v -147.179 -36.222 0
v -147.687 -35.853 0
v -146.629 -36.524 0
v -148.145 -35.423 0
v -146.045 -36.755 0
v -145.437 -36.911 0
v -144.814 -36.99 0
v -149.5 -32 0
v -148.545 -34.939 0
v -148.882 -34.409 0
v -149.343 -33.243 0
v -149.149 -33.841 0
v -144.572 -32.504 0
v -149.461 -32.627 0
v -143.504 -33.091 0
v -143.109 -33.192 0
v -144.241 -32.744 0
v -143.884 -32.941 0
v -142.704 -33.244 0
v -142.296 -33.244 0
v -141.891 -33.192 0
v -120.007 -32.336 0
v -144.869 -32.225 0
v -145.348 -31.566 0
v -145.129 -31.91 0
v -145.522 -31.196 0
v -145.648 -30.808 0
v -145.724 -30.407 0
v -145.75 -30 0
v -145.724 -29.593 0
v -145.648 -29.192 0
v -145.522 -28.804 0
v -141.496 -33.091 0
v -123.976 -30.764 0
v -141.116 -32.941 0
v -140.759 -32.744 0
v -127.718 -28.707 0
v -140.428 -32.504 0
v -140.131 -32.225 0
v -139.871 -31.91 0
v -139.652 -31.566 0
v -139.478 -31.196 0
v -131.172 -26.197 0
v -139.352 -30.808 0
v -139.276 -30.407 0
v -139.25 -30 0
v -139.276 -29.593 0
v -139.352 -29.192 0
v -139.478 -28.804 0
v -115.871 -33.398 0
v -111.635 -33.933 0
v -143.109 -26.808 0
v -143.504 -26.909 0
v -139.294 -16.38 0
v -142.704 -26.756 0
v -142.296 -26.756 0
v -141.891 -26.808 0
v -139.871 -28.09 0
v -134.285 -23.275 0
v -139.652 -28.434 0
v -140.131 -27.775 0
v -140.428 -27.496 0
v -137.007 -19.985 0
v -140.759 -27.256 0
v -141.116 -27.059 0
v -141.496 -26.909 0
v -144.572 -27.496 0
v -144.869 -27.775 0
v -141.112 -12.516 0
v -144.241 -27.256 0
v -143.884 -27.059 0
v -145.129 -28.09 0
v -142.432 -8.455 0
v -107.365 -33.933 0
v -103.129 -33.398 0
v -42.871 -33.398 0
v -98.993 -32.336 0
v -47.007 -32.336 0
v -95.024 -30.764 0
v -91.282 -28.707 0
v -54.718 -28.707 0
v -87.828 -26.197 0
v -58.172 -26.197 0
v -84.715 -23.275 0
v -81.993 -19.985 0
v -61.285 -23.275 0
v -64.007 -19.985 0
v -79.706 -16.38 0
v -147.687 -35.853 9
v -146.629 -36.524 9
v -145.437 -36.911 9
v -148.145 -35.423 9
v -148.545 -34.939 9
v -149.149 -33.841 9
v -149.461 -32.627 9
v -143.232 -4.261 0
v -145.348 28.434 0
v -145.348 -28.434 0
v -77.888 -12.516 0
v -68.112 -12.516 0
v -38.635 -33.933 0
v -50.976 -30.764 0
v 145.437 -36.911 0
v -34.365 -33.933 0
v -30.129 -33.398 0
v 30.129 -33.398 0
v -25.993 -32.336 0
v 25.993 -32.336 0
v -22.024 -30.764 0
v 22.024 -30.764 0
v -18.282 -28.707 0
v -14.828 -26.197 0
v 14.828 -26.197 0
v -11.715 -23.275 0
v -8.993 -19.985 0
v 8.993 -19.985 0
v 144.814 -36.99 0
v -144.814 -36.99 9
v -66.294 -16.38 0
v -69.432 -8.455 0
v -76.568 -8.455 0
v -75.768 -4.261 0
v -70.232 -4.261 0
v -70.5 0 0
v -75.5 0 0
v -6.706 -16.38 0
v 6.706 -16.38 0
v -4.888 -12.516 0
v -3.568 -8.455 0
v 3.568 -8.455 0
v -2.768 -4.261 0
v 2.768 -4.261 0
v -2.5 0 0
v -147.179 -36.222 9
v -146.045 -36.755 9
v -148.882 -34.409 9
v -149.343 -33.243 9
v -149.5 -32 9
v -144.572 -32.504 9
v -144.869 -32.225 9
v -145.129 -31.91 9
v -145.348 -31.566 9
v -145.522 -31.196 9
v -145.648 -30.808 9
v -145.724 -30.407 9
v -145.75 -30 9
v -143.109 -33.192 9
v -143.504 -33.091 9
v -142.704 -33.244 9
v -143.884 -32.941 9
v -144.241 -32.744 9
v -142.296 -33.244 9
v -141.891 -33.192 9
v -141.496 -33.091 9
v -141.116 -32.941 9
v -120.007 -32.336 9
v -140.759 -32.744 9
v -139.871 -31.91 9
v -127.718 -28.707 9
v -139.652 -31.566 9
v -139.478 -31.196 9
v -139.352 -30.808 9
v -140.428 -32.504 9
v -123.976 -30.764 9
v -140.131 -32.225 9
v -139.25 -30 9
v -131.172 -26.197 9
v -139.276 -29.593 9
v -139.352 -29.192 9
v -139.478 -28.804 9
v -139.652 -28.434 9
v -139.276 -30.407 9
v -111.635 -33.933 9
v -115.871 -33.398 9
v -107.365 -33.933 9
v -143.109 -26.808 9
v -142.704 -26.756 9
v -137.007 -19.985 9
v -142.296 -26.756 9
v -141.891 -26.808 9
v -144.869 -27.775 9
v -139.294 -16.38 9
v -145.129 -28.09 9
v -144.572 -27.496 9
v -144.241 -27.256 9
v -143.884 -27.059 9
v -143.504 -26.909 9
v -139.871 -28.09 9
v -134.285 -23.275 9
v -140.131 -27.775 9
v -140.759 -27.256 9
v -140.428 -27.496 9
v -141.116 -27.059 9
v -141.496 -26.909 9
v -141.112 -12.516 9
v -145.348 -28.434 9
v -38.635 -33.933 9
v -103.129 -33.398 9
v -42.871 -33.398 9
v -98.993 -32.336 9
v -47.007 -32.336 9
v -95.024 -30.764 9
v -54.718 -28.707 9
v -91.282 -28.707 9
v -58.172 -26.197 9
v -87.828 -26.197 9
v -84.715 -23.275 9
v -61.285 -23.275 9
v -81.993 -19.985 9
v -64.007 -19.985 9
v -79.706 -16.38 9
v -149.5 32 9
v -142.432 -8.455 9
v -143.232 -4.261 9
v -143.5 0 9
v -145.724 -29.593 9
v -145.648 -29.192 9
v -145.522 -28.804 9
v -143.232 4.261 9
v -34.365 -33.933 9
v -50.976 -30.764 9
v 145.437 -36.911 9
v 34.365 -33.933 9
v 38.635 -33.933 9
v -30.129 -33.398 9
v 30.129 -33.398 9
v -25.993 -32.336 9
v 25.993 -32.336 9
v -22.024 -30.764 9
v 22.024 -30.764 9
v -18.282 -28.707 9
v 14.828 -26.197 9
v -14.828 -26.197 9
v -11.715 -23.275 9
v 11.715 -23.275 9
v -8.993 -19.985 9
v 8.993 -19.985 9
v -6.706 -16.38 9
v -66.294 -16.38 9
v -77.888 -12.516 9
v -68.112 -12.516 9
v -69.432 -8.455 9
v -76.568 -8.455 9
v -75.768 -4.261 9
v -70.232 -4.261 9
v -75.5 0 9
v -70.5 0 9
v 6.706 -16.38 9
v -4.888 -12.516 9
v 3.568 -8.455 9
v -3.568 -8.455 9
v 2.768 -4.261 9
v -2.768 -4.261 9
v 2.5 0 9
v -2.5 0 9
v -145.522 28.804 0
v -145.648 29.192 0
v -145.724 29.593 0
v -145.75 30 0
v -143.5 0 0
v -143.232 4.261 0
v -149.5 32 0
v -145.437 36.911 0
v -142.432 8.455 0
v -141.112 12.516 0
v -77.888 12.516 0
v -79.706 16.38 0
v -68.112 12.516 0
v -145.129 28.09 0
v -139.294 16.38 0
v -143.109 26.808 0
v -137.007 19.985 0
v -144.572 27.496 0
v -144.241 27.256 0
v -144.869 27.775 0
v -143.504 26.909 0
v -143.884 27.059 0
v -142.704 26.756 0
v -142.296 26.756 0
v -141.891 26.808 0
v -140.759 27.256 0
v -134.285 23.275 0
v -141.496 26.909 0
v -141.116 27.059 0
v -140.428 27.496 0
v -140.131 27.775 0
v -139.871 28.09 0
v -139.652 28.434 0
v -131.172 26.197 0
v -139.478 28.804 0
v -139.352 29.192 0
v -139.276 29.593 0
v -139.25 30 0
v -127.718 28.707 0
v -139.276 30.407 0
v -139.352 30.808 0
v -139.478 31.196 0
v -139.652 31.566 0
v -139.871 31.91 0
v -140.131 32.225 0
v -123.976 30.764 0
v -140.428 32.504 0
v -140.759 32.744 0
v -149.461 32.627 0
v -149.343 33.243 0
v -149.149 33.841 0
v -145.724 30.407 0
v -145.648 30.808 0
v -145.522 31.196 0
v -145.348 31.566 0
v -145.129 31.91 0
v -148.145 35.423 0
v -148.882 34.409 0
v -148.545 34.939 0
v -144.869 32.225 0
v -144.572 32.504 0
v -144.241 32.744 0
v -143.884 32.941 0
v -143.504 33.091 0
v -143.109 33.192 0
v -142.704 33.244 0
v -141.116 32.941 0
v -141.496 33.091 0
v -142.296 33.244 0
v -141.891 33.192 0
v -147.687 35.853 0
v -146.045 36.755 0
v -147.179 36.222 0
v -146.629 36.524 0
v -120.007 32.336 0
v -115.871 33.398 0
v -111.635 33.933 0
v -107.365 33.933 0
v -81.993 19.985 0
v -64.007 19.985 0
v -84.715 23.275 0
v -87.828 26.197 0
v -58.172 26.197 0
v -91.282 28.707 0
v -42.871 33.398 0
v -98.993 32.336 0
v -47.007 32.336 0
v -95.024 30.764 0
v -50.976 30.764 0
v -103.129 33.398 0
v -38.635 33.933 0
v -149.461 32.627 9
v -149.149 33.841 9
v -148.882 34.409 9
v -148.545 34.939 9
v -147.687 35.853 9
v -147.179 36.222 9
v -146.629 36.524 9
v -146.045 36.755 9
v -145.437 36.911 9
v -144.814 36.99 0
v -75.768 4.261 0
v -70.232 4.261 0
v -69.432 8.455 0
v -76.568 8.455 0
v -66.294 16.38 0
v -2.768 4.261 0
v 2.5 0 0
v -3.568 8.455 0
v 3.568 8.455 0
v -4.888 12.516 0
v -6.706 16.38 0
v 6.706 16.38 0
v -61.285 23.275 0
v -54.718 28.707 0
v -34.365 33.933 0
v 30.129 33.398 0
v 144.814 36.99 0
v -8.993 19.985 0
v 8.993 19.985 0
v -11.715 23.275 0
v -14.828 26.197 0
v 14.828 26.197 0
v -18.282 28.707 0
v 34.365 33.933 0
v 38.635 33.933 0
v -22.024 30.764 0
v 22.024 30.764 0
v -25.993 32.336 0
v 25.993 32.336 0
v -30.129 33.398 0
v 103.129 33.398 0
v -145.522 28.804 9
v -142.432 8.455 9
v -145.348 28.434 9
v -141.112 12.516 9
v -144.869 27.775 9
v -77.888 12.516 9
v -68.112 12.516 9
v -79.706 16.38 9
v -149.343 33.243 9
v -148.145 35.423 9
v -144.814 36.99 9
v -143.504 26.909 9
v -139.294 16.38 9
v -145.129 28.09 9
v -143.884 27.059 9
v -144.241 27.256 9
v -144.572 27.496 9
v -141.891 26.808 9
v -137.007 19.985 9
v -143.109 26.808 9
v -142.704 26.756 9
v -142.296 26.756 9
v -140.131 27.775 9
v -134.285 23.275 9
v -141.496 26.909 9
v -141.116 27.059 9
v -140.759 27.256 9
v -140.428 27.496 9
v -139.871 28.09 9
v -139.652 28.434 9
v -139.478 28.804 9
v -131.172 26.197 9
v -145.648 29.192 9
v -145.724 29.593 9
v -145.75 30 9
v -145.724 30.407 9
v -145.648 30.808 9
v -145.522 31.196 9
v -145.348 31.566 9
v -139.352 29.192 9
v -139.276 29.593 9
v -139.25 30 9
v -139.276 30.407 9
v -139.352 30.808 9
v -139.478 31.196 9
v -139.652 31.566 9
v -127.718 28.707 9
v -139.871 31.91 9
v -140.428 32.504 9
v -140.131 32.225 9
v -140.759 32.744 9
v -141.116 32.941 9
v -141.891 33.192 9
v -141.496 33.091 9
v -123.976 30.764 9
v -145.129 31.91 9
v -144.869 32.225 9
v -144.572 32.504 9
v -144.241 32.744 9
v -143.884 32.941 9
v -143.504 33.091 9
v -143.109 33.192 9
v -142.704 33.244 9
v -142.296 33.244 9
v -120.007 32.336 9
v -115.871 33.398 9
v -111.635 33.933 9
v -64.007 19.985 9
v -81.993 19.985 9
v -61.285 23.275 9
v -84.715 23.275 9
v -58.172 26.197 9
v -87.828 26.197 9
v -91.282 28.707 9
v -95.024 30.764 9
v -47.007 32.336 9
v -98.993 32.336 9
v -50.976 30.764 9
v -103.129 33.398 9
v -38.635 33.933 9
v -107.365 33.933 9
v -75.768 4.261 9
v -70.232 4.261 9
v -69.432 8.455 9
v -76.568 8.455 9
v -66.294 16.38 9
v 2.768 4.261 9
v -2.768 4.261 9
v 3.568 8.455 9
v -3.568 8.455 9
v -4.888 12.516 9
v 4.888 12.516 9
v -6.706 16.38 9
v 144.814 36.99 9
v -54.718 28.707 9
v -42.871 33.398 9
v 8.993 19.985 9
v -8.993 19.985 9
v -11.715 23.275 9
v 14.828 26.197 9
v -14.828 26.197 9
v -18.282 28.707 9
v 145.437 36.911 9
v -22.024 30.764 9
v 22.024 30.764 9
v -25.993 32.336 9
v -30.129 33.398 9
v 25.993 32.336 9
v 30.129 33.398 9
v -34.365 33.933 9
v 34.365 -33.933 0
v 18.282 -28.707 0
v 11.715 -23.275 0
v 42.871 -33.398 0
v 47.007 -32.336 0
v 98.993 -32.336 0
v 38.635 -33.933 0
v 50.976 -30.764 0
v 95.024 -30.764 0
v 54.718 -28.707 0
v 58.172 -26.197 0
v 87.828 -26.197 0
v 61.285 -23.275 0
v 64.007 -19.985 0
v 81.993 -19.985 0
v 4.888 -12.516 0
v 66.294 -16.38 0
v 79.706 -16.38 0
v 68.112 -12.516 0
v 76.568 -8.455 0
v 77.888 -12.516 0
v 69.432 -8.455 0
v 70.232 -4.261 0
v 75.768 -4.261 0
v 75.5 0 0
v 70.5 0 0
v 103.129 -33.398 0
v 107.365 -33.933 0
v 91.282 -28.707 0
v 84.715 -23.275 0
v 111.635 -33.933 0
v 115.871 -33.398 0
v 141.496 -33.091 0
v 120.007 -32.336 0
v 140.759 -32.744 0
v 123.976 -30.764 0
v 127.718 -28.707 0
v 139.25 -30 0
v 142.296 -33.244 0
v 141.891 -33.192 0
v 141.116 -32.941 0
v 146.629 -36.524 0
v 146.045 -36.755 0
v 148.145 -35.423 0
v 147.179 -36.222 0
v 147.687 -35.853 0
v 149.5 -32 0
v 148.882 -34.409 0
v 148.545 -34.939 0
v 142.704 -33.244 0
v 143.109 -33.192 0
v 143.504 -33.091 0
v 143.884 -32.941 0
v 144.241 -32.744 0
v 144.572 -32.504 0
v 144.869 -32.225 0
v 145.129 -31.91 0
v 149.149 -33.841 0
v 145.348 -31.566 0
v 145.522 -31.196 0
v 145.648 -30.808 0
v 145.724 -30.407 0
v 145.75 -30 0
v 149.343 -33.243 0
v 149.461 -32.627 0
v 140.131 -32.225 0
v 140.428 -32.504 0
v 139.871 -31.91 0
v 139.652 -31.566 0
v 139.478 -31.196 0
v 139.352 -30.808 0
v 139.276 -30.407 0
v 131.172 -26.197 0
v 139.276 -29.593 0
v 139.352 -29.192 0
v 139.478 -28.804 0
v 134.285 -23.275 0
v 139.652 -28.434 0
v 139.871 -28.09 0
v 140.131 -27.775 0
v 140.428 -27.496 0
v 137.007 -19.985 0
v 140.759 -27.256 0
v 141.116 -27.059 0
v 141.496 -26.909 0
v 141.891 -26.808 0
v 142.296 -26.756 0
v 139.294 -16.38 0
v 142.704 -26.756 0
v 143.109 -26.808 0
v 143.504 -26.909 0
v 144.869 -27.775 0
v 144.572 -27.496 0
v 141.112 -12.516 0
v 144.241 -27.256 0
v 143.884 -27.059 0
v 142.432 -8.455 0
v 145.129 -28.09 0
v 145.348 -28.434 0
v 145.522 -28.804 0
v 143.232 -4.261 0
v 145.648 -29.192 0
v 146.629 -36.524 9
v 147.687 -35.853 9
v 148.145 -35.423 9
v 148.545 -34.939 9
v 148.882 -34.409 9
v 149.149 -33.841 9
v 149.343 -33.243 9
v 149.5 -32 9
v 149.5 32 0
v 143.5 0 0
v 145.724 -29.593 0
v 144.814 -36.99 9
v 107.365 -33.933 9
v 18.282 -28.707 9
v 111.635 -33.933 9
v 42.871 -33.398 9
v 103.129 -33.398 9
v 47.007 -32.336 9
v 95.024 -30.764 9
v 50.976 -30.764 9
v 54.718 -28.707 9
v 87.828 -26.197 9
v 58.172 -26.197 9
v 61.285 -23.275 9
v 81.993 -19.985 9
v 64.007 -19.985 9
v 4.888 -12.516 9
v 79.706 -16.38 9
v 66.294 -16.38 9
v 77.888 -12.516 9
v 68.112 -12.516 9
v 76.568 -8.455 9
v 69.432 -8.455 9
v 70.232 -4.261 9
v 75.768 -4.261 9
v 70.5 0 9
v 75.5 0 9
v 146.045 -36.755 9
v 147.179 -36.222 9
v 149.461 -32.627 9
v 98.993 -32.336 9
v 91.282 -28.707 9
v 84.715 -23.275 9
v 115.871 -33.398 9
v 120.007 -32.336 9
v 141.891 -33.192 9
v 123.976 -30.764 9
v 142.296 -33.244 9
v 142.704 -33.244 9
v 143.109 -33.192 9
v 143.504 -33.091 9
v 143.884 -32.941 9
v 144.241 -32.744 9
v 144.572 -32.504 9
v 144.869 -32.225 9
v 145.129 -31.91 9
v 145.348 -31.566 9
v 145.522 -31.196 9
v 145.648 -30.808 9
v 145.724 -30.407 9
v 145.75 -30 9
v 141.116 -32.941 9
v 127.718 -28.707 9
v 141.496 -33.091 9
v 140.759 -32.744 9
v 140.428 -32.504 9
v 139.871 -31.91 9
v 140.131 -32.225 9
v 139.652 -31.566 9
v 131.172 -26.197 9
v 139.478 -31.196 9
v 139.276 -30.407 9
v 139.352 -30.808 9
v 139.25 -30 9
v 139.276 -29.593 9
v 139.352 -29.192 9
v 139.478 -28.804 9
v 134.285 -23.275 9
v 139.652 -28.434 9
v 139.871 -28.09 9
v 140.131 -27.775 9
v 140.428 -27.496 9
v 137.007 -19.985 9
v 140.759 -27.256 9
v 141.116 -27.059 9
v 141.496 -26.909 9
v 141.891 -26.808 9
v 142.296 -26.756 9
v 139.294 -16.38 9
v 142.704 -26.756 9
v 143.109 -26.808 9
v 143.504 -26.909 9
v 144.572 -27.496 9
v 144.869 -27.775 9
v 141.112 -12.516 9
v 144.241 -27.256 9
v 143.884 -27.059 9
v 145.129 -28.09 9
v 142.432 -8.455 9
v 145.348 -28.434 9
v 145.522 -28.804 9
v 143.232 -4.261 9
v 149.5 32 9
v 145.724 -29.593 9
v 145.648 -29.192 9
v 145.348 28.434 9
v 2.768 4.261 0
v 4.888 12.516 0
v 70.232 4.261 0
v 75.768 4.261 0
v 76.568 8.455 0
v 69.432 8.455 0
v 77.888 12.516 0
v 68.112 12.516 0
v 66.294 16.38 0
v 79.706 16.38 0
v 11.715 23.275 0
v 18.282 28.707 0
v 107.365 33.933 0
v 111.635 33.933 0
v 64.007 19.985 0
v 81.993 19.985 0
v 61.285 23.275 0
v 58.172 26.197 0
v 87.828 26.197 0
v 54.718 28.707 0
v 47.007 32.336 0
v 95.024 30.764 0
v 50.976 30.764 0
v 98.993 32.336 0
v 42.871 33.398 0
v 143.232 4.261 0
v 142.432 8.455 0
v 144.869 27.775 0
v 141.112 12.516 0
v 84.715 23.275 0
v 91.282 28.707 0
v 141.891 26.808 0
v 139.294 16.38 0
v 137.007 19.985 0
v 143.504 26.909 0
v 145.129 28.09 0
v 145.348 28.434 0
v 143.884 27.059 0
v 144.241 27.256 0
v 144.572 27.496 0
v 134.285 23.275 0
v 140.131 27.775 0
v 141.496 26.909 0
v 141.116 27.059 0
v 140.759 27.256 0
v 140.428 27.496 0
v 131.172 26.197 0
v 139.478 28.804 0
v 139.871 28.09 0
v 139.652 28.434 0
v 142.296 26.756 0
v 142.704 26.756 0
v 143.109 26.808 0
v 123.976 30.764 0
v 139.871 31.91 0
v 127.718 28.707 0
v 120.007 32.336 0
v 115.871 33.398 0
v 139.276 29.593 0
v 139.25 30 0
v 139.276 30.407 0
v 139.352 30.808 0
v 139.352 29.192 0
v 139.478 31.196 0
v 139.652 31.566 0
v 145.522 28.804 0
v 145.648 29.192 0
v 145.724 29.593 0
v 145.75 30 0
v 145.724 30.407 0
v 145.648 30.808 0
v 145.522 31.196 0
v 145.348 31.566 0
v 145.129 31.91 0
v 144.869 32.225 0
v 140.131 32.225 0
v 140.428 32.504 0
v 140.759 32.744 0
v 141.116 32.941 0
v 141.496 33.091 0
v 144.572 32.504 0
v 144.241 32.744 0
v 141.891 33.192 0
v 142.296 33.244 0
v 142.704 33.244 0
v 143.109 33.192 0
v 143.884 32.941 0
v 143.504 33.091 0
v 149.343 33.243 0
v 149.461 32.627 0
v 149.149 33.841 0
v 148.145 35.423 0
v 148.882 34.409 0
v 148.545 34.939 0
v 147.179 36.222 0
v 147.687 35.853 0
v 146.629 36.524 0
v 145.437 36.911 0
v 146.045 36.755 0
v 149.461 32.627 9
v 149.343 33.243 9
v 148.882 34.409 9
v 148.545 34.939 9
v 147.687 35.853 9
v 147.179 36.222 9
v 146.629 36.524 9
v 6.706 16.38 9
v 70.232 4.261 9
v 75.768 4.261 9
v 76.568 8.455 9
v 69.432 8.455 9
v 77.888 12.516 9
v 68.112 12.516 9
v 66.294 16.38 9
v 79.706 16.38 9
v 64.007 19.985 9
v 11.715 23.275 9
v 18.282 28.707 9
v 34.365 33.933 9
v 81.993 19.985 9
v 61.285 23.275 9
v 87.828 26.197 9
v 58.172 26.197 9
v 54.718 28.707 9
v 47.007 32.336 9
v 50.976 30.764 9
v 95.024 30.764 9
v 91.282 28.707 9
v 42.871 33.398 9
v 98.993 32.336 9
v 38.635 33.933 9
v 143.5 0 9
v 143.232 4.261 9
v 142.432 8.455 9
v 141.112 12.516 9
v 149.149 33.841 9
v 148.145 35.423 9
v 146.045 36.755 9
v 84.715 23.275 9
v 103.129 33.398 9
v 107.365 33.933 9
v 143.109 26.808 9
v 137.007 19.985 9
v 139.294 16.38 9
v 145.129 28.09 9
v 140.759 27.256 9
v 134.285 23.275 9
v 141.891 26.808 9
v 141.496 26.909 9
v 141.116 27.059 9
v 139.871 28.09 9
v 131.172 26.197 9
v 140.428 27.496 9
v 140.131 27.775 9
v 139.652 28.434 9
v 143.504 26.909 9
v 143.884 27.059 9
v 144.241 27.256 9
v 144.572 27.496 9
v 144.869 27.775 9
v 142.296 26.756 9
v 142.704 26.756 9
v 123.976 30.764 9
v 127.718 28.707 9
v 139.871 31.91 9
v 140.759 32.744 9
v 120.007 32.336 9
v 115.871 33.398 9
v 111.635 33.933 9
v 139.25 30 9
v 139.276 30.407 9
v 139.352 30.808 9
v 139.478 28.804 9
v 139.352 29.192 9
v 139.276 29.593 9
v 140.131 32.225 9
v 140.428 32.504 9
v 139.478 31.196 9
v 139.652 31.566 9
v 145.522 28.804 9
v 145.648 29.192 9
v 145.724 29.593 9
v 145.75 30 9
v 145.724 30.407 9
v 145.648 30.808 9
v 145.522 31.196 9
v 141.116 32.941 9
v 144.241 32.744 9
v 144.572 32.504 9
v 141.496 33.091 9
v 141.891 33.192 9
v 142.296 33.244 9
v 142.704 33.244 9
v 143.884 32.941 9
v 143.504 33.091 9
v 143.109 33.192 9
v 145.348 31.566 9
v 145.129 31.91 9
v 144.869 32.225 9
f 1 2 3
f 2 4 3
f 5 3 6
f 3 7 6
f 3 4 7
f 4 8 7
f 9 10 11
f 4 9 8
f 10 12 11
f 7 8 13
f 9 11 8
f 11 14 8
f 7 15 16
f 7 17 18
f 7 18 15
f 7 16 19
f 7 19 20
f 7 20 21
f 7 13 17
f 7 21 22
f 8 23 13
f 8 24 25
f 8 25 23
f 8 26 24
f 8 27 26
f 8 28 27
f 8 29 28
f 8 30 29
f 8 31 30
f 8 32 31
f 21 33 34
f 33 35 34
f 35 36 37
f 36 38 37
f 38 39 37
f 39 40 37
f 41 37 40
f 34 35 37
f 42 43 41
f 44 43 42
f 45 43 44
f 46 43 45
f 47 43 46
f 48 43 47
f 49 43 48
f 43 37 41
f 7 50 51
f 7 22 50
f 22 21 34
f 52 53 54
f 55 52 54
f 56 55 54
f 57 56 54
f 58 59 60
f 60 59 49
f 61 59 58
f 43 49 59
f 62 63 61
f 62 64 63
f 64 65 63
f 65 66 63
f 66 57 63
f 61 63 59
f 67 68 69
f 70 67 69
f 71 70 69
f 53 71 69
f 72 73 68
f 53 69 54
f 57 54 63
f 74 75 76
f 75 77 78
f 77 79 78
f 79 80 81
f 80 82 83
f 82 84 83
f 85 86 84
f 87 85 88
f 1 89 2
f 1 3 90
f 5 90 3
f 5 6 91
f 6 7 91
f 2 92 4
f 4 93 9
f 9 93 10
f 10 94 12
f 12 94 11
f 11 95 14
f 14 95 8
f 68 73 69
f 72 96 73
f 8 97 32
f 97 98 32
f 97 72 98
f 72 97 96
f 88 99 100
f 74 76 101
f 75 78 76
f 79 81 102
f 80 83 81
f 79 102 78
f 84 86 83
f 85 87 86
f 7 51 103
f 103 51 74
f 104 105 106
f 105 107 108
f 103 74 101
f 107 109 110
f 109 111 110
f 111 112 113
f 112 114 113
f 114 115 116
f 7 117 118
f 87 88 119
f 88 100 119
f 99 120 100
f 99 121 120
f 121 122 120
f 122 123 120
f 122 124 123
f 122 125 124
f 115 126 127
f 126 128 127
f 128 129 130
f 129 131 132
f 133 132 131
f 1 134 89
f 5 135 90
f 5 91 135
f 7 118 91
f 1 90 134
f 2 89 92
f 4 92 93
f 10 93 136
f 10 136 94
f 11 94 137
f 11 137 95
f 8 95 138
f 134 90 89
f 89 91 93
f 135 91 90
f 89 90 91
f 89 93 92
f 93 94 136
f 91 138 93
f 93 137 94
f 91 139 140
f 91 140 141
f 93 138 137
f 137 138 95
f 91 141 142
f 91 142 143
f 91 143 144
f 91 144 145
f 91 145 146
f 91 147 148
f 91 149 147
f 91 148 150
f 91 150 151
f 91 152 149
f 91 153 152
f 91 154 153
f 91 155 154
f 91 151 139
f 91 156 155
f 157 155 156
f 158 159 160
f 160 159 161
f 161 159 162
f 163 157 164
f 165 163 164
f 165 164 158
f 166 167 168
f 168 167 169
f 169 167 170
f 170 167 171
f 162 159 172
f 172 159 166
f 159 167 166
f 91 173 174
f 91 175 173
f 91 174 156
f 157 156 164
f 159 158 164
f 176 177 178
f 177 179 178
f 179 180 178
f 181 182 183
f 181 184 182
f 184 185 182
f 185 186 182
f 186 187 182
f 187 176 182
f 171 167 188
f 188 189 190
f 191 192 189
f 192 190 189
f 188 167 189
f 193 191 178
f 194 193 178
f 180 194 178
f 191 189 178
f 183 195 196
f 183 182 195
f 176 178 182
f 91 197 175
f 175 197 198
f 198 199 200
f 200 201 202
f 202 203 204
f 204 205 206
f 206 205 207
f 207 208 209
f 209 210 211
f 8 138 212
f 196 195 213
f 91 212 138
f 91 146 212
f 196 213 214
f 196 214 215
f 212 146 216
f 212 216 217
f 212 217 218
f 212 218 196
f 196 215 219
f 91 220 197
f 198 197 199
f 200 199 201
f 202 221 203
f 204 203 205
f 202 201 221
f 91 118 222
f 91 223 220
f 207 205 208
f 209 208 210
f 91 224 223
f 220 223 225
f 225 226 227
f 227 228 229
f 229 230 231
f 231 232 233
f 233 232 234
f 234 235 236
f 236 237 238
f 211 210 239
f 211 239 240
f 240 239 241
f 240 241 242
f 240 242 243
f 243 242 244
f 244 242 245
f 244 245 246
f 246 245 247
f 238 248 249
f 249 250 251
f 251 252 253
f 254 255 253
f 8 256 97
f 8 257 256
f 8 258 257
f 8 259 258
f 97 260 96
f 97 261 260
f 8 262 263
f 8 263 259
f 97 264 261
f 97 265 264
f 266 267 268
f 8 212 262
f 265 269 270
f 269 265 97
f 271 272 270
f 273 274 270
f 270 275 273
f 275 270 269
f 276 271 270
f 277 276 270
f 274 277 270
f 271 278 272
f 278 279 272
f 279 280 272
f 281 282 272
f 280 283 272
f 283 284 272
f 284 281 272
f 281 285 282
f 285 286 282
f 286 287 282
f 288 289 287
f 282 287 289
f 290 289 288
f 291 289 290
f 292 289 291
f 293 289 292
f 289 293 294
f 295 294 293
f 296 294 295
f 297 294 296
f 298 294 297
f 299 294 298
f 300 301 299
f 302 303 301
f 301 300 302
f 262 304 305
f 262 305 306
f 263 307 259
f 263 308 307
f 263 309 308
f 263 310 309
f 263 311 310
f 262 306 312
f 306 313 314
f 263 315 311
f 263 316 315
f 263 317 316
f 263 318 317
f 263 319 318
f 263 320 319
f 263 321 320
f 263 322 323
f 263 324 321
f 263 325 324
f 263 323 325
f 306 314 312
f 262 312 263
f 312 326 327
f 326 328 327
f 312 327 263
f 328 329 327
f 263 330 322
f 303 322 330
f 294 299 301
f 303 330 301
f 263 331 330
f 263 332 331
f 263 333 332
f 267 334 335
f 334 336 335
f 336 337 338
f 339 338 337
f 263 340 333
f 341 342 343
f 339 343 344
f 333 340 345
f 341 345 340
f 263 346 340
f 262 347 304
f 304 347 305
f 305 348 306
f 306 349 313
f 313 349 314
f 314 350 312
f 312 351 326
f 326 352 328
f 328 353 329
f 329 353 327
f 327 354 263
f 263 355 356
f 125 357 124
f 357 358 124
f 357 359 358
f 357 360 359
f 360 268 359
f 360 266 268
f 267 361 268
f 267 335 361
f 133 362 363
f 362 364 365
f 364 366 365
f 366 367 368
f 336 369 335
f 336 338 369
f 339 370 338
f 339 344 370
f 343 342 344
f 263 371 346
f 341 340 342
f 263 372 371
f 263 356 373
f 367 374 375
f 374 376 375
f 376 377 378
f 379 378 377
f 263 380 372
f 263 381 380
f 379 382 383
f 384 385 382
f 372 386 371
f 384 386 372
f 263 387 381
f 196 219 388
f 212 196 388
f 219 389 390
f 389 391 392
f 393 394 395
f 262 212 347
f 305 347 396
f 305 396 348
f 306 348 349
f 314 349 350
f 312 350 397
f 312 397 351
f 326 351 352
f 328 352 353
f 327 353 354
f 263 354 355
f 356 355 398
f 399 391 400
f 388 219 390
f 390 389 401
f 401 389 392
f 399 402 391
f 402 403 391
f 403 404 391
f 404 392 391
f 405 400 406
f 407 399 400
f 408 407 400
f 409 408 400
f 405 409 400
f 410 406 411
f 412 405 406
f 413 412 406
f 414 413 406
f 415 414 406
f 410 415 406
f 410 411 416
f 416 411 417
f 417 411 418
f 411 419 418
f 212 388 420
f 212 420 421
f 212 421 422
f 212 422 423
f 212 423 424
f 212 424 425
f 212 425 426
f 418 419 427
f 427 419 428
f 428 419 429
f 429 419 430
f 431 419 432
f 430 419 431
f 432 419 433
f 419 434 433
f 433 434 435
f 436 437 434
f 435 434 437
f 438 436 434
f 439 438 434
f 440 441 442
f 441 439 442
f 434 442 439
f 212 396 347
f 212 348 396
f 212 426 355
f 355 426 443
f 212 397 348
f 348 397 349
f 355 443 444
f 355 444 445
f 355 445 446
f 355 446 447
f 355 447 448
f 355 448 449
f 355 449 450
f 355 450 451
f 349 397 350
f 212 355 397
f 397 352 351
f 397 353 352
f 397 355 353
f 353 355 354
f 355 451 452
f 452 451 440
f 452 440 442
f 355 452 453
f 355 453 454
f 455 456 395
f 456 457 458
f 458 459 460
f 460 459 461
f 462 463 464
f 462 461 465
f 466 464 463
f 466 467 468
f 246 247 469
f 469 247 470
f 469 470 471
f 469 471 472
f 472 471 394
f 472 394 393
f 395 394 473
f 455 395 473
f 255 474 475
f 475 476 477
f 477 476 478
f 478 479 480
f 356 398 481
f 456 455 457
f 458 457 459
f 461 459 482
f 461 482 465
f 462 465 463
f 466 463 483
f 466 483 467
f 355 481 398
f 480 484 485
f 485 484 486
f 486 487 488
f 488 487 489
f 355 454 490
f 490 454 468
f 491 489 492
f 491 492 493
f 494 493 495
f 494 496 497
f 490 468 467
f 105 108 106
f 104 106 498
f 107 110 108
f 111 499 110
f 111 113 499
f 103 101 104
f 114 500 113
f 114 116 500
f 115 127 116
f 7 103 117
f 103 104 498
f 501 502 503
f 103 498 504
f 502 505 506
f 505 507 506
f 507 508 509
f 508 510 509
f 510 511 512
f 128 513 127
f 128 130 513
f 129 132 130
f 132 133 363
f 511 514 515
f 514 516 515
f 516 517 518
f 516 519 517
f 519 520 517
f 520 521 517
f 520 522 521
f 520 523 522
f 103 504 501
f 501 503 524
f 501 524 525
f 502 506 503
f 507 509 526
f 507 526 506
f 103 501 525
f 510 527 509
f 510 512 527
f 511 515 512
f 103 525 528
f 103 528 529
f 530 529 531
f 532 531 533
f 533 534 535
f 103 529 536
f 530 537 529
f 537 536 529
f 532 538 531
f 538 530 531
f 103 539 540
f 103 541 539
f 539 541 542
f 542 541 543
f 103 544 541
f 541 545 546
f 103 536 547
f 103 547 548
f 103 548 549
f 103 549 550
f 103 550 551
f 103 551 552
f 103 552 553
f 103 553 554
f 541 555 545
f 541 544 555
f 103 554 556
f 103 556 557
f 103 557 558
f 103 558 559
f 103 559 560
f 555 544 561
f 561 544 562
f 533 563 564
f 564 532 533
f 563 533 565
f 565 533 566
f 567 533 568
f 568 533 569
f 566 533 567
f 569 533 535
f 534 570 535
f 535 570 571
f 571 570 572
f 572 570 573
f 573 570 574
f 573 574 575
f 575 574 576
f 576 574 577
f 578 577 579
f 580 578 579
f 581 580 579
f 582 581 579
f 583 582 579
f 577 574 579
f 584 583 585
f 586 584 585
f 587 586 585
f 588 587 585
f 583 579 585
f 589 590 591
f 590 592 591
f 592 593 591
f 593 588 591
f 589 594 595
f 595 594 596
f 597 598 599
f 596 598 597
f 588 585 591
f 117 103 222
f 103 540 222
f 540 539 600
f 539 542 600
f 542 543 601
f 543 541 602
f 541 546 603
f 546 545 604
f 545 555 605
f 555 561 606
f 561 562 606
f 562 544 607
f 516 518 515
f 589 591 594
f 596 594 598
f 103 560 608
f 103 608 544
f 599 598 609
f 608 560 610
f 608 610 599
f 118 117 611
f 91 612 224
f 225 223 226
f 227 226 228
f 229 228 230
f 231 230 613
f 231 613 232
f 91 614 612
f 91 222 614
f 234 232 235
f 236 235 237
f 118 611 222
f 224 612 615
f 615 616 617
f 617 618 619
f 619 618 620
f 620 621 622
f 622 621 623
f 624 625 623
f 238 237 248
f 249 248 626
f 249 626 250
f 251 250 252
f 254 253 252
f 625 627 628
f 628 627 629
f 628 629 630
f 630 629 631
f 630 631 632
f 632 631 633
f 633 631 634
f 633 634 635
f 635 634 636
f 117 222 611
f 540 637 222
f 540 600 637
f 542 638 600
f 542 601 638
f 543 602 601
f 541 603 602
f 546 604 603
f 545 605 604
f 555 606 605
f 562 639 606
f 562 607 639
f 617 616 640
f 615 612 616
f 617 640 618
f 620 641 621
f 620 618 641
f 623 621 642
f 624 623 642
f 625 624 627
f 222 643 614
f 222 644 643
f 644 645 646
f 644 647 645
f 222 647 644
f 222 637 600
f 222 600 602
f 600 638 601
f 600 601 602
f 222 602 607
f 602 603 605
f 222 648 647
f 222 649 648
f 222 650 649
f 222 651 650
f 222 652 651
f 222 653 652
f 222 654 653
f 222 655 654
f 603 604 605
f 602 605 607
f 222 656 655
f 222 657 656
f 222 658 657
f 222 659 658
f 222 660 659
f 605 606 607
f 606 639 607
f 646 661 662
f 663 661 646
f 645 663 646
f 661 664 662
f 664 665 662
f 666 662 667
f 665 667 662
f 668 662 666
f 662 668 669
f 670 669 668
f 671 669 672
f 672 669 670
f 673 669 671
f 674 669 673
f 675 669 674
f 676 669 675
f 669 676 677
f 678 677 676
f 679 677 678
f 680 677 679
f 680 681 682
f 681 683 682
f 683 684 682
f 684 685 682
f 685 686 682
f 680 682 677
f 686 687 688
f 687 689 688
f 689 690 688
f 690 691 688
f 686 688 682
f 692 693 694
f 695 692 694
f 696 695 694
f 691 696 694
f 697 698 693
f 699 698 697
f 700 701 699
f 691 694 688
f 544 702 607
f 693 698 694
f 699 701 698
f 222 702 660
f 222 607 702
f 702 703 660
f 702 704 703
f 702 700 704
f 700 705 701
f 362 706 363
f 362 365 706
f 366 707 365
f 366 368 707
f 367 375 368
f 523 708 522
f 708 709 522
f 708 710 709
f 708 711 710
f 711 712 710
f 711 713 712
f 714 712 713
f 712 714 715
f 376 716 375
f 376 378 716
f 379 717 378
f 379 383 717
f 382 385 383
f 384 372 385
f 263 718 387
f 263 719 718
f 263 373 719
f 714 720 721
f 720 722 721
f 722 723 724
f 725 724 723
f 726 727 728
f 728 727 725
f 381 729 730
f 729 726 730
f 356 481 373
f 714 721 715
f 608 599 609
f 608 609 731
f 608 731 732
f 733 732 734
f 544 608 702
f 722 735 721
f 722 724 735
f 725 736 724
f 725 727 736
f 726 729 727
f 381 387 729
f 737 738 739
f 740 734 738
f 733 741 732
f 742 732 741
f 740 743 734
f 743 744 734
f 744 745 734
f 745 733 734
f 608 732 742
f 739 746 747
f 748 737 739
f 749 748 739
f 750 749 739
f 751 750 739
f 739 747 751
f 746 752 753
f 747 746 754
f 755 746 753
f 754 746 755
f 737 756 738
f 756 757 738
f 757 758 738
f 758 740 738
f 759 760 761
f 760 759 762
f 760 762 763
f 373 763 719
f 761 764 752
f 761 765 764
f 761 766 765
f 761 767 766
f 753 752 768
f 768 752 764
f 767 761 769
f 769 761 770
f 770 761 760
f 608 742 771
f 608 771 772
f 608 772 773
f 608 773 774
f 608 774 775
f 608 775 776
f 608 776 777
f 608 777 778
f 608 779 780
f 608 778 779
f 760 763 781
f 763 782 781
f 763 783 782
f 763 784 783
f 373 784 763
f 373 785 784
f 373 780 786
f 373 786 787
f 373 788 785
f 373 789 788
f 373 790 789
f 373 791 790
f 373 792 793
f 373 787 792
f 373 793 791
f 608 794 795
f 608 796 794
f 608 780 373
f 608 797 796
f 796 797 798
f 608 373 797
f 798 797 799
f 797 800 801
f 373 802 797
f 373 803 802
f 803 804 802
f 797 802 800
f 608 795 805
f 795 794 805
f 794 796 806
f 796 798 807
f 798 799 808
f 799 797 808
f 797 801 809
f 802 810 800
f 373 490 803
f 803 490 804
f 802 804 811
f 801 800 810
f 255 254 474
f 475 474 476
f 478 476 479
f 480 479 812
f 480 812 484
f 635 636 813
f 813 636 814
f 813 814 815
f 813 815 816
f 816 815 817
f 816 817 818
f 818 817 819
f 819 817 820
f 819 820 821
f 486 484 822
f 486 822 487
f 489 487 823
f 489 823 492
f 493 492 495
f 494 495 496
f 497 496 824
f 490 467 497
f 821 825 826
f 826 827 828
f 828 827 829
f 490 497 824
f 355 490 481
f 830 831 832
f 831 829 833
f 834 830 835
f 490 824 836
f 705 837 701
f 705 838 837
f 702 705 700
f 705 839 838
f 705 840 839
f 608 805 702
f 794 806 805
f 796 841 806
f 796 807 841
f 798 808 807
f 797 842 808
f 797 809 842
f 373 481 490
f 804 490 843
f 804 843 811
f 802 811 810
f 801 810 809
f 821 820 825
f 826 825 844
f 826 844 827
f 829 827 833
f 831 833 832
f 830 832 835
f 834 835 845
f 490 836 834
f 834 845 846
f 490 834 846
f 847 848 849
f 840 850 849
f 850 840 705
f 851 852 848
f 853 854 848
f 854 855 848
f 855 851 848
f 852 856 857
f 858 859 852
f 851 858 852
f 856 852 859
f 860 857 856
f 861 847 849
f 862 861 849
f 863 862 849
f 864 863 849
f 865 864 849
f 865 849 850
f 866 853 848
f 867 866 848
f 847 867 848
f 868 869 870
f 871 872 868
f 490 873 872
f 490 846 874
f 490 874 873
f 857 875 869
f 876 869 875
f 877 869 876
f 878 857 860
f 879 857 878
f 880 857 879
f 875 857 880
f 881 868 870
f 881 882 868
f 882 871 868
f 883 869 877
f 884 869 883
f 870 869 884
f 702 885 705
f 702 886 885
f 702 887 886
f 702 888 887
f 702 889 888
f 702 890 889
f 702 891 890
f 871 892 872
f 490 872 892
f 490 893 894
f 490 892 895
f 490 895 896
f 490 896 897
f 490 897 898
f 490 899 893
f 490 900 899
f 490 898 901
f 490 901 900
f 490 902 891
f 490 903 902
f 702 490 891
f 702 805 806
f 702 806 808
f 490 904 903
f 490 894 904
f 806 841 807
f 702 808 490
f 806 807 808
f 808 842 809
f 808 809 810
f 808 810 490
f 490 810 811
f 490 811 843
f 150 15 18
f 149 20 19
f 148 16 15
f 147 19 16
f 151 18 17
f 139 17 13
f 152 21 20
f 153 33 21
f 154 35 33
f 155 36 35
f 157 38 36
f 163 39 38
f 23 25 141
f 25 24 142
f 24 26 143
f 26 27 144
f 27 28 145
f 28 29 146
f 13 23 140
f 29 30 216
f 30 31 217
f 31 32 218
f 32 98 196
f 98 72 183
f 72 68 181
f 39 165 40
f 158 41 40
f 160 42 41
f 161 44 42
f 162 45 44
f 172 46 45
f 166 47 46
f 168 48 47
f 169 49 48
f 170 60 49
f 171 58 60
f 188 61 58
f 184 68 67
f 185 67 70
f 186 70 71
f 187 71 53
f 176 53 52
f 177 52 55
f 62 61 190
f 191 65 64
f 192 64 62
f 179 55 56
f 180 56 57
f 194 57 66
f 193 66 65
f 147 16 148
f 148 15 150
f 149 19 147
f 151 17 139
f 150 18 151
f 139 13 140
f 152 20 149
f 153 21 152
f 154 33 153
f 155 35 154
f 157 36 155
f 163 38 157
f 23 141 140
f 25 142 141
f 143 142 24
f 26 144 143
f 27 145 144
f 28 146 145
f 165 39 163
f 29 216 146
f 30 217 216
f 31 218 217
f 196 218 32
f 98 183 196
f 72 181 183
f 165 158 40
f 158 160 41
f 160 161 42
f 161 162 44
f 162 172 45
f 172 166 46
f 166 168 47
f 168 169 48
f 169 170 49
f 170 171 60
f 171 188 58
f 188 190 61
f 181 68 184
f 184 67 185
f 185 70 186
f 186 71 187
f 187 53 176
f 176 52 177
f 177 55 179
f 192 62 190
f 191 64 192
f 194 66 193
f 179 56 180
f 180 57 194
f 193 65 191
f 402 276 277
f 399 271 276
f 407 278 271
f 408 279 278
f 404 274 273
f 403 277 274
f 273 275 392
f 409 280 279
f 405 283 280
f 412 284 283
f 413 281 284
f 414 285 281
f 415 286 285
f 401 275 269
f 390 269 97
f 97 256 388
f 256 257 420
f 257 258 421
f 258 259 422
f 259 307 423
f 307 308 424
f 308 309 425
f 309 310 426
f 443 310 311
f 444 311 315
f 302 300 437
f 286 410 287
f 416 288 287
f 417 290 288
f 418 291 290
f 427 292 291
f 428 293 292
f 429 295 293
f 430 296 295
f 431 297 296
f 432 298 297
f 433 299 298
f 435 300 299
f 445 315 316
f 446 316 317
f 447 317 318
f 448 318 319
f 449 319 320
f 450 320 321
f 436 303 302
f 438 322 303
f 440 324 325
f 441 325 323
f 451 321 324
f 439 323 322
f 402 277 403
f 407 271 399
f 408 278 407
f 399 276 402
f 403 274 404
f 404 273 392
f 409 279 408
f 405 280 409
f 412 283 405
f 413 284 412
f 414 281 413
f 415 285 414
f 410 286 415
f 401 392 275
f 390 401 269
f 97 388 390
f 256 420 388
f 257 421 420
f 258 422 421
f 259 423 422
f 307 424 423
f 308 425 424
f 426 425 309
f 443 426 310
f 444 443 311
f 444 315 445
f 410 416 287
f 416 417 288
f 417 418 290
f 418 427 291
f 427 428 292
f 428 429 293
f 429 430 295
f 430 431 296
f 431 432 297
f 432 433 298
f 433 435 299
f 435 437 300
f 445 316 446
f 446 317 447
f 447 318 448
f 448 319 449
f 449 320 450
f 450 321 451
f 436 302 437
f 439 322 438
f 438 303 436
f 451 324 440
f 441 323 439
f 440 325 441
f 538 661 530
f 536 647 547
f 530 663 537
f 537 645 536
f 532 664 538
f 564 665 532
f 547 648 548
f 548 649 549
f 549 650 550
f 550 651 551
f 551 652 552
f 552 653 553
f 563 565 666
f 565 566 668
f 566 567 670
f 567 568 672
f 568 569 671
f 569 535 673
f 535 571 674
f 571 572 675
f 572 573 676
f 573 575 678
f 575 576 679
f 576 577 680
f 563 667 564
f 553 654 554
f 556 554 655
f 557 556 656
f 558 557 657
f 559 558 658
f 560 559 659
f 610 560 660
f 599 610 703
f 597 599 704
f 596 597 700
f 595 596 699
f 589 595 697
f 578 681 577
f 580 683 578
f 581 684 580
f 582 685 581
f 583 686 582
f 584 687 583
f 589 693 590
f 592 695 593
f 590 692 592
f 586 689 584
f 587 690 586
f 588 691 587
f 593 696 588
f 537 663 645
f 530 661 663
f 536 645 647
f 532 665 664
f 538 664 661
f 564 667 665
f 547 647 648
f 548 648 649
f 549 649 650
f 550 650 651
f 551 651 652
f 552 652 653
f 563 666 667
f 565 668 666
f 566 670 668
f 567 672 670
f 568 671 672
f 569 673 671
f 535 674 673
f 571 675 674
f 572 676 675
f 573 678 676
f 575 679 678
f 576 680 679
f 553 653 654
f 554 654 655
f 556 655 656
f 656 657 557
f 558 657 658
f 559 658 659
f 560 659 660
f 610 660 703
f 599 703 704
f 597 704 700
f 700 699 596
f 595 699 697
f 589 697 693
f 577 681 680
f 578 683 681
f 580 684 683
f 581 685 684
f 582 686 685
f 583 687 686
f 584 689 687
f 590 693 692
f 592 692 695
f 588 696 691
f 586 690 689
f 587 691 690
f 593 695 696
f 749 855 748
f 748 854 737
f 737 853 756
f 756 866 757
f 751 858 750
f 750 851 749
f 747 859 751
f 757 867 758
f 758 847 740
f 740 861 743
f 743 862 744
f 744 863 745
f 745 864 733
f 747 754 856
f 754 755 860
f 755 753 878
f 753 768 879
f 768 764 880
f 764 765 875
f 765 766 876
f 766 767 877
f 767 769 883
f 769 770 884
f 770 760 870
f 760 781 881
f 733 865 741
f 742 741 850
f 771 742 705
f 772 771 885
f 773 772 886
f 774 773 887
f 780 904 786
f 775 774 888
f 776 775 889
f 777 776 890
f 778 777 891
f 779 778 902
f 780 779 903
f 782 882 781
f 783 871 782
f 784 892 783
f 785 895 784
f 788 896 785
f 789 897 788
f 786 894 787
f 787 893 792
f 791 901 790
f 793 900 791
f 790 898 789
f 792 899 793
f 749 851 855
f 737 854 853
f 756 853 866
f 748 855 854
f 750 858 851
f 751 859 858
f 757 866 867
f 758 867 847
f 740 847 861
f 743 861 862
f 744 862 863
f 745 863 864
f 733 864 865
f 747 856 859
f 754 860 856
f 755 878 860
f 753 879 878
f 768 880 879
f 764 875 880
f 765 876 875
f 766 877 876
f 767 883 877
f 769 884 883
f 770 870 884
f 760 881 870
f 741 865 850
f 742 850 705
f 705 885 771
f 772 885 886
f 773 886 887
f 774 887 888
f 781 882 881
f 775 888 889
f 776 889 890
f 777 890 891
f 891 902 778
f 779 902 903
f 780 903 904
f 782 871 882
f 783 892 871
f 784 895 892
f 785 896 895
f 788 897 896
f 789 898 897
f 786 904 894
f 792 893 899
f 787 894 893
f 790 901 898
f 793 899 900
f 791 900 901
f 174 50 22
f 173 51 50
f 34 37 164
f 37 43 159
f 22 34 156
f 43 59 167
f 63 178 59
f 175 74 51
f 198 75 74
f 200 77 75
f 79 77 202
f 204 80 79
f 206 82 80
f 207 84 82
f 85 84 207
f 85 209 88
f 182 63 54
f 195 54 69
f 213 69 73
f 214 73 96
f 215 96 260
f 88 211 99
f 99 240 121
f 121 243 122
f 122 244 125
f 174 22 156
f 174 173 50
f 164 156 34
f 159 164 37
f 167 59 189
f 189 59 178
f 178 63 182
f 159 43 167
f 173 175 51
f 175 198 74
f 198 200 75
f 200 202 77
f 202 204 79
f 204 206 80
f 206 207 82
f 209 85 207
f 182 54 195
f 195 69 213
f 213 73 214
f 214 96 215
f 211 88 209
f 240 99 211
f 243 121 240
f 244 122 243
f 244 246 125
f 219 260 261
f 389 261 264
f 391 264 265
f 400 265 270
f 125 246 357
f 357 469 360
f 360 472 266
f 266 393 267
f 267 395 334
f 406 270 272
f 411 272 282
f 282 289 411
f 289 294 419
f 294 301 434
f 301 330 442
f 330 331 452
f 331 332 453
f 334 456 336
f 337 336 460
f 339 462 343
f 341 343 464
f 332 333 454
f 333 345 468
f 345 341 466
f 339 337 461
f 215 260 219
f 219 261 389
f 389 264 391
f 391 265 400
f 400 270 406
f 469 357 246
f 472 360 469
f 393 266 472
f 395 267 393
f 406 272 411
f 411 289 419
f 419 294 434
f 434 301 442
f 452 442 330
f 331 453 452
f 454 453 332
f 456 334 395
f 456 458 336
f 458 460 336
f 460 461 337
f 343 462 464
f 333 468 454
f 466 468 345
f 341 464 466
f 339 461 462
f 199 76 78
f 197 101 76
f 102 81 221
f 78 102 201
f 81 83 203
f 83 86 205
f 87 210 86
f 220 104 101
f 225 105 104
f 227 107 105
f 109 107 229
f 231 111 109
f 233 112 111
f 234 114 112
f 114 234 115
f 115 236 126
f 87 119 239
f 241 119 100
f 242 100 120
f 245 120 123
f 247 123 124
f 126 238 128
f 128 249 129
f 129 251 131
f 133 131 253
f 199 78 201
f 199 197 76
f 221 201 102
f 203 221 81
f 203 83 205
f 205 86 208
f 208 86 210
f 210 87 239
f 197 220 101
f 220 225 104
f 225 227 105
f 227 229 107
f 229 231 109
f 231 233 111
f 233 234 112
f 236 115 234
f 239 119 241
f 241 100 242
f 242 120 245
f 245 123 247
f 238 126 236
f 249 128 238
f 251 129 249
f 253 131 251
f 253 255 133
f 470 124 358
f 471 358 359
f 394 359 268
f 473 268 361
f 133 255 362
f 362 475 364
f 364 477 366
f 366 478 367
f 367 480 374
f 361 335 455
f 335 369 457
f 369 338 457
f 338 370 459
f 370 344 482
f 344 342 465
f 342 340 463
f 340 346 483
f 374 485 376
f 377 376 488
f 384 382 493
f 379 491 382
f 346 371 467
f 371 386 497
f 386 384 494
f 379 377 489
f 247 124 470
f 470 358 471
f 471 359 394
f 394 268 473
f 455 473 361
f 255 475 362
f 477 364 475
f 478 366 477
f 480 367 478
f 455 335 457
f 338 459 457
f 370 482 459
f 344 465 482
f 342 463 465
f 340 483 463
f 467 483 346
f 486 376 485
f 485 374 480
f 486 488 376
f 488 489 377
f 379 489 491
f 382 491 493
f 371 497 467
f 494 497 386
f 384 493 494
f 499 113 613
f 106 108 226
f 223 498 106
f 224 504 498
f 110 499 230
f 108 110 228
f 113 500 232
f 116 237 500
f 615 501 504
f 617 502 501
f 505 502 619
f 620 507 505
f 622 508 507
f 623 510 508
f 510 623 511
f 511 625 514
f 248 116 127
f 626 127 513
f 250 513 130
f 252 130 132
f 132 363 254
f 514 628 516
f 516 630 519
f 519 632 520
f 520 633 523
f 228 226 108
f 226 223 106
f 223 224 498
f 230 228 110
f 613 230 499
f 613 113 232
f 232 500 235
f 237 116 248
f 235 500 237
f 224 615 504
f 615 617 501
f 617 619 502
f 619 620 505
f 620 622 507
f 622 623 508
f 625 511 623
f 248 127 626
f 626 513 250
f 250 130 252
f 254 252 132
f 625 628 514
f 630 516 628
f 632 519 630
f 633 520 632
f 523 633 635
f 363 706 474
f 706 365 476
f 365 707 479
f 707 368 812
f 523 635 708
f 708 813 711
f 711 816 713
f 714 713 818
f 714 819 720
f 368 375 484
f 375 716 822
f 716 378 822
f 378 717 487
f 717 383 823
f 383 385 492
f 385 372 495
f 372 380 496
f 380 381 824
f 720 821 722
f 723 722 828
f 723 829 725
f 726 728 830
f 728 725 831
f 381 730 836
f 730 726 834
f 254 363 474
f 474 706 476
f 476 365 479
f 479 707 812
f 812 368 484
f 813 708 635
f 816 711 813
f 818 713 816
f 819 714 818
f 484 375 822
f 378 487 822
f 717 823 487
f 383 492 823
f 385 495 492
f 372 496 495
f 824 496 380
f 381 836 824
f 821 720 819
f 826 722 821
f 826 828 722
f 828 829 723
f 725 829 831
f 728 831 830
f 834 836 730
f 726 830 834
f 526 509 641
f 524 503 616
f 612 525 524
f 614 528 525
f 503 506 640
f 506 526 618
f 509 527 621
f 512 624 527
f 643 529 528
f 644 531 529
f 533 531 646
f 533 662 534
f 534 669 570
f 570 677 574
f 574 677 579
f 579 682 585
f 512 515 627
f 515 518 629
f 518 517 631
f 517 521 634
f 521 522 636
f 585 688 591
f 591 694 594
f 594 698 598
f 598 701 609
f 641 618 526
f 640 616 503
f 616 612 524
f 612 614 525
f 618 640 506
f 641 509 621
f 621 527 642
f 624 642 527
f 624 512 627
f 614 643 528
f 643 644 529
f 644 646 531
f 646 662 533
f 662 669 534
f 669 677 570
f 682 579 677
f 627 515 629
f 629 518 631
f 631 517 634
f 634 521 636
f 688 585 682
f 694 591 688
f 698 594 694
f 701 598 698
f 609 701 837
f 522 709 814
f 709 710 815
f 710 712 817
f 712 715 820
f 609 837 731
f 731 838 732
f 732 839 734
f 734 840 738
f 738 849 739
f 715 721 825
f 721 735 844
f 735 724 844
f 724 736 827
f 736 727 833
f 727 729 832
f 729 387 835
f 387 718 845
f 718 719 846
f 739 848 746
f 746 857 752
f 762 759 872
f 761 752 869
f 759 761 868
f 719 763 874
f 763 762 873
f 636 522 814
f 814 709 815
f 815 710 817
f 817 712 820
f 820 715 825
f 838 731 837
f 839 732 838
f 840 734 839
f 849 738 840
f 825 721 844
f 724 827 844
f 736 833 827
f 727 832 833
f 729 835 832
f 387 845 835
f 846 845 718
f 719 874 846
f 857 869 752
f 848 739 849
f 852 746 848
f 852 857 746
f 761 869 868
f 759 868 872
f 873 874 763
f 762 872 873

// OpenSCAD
$fn = 50;

difference() {
	union() {
		hull() {
			translate(v = [-144.5, 32.0, 0]) {
				cylinder(h = 9, r = 5);
			}
			translate(v = [144.5, 32.0, 0]) {
				cylinder(h = 9, r = 5);
			}
			translate(v = [-144.5, -32.0, 0]) {
				cylinder(h = 9, r = 5);
			}
			translate(v = [144.5, -32.0, 0]) {
				cylinder(h = 9, r = 5);
			}
		}
	}
	union() {
		translate(v = [-142.5, -30.0, -100.0]) {
			cylinder(h = 200, r = 3.25);
		}
		translate(v = [-142.5, 30.0, -100.0]) {
			cylinder(h = 200, r = 3.25);
		}
		translate(v = [142.5, -30.0, -100.0]) {
			cylinder(h = 200, r = 3.25);
		}
		translate(v = [142.5, 30.0, -100.0]) {
			cylinder(h = 200, r = 3.25);
		}
		translate(v = [-142.5, -30.0, -100.0]) {
			cylinder(h = 200, r = 1.8);
		}
		translate(v = [-142.5, 30.0, -100.0]) {
			cylinder(h = 200, r = 1.8);
		}
		translate(v = [142.5, -30.0, -100.0]) {
			cylinder(h = 200, r = 1.8);
		}
		translate(v = [142.5, 30.0, -100.0]) {
			cylinder(h = 200, r = 1.8);
		}
		translate(v = [-109.5, 0, 0.0]) {
			cylinder(h = 9, r = 34.0);
		}
		translate(v = [-36.5, 0, 0.0]) {
			cylinder(h = 9, r = 34.0);
		}
		translate(v = [36.5, 0, 0.0]) {
			cylinder(h = 9, r = 34.0);
		}
		translate(v = [109.5, 0, 0.0]) {
			cylinder(h = 9, r = 34.0);
		}
	}
}
